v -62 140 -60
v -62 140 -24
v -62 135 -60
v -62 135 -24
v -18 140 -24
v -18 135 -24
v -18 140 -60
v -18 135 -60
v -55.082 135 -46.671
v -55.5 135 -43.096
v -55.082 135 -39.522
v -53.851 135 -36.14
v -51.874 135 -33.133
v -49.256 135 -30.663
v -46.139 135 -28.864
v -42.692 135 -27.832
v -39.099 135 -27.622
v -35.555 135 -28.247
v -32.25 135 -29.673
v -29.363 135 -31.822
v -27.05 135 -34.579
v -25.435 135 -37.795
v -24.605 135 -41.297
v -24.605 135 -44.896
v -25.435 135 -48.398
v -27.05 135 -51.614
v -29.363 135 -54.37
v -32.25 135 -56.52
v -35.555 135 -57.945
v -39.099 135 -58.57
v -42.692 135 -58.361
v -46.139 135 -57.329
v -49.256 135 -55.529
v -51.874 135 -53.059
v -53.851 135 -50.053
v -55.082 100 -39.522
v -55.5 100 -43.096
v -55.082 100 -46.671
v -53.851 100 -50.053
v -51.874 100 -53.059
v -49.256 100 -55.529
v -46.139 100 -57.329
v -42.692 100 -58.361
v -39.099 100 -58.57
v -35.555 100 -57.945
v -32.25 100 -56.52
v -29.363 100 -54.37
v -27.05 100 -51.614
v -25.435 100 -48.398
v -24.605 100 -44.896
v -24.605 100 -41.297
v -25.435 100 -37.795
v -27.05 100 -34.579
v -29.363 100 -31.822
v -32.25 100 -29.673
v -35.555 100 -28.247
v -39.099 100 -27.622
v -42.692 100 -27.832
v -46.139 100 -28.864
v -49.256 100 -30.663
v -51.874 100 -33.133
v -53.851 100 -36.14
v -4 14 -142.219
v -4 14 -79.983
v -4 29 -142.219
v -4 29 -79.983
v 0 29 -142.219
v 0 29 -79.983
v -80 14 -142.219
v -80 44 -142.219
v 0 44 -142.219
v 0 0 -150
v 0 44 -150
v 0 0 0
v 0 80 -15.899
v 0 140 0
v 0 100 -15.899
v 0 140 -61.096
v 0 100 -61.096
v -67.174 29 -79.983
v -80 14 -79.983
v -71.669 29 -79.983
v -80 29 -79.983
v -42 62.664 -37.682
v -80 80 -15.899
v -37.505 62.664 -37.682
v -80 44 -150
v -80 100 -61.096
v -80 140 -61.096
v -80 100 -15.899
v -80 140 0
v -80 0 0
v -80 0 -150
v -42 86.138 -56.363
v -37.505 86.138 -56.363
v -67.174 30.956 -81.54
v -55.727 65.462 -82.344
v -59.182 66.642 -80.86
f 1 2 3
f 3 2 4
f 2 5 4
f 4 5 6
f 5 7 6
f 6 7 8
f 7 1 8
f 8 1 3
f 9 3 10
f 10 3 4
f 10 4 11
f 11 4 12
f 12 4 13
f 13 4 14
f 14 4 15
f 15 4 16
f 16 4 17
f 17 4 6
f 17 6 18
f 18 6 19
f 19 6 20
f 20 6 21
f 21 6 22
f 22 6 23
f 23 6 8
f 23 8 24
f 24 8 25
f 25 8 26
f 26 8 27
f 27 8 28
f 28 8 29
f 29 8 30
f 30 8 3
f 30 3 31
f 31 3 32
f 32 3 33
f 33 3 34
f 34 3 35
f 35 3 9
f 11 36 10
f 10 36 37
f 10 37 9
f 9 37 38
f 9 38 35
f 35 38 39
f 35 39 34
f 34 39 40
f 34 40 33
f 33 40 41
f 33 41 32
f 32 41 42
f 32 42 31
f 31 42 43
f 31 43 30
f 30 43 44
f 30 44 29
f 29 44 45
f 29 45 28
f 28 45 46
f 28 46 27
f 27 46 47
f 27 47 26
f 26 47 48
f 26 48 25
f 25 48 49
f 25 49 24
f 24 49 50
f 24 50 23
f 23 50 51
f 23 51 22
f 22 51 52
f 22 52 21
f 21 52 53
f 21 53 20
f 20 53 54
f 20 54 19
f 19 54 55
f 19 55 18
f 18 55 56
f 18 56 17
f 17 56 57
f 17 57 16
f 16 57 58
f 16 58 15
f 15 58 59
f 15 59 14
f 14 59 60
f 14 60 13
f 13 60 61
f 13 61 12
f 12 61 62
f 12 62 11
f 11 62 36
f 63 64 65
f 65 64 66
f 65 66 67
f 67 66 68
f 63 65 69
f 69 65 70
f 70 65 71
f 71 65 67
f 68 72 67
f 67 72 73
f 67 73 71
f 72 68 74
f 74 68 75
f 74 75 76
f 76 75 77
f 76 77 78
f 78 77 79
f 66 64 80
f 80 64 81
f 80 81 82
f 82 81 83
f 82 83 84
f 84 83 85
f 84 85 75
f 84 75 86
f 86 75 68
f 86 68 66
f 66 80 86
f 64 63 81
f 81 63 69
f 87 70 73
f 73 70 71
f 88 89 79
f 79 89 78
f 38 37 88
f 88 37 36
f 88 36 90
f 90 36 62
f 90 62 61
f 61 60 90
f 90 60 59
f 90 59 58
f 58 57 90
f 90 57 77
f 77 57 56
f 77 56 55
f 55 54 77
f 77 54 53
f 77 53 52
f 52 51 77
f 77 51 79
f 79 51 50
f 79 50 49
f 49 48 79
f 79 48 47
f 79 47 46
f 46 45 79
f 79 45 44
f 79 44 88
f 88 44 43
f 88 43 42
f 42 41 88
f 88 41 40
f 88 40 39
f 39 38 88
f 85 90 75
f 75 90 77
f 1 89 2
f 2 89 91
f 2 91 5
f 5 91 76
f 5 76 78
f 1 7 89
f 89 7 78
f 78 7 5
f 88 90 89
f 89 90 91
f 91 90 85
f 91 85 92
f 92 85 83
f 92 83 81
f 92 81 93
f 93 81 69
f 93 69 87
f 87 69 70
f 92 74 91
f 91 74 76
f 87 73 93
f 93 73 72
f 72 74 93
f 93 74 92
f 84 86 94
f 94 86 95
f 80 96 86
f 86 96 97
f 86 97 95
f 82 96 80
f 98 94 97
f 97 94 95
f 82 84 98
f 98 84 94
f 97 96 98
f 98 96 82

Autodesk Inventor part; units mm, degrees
ref_plane "YZ Plane" through (0, 0, 0) normal (1, 0, 0) x (0, 1, 0)
ref_plane "XZ Plane" through (0, 0, 0) normal (0, 1, 0) x (-1, 0, 0)
ref_plane "XY Plane" through (0, 0, 0) normal (0, 0, 1) x (1, 0, 0)
sketch "Sketch1" plane through (0, 0, 0) normal (0, 1, 0) x (-1, 0, 0)
  line L0 (0, 0) -> (80, 0)
  line L1 (80, 0) -> (80, -150)
  line L2 (80, -150) -> (0, -150)
  line L3 (0, -150) -> (0, 0)
  dimension "d0" = 80
  dimension "d1" = 150
extrude "Extrusion1" add sketch "Sketch1" along normal blind 140
sketch "Sketch2" plane through (0, 0, 0) normal (1, 0, 0) x (0, 0, -1)
  line L0 (150, 140) -> (0, 140) projected
  line L1 (61.0962, 140) -> (61.0962, 100)
  line L2 (61.0962, 100) -> (15.8986, 100)
  line L3 (15.8986, 80) -> (79.9832, 29)
  line L4 (79.9832, 29) -> (79.9832, 14)
  line L5 (79.9832, 14) -> (142.2187, 14)
  line L6 (142.2187, 14) -> (142.2187, 44)
  line L7 (142.2187, 44) -> (150, 44)
  line L8 (150, 0) -> (150, 140) projected
  line L9 (150, 44) -> (150, 140)
  line L10 (150, 140) -> (61.0962, 140)
  line L11 (15.8986, 100) -> (15.8986, 80)
  line L12 (0, 0) -> (150, 0) projected
  point P0 (146.1093, 44)
  point P1 (111.101, 14)
  dimension "d7" = 15
  dimension "d8" = 30
  dimension "d9" = 14
  dimension "d11" = 40
  dimension "d12" = 20
extrude "Extrusion2" cut sketch "Sketch2" against normal blind 140
sketch "Sketch3" plane through (0, 14, -79.9832) normal (0, 1, 0) x (1, 0, 0)
  line L0 (0, -79.9832) -> (0, 70.0168) projected
  line L1 (0, 0) -> (-80, 0) projected
  line L2 (0, 62.5105) -> (-4, 62.5105)
  line L3 (-4, 62.5105) -> (-4, 0)
  line L4 (-4, 0) -> (0, 0)
  line L5 (0, 0) -> (0, 62.5105)
  dimension "d13" = 4
extrude "Extrusion3" add sketch "Sketch3" along normal blind 15
sketch "Sketch4" plane through (0, 140, 0) normal (0, 1, 0) x (1, 0, 0)
  circle A0 centre (-40, 43.0962) radius 15.5
  line L0 (0, 61.0962) -> (-80, 61.0962) projected
  line L1 (0, 0) -> (0, 61.0962) projected
  dimension "d18" = 31
  dimension "d19" = 18
  dimension "d20" = 40
extrude "Extrusion4" cut sketch "Sketch4" against normal blind 50
sketch "Sketch5" plane through (0, 140, 0) normal (0, 1, 0) x (1, 0, 0)
  line L0 (-18, 24) -> (-62, 24)
  line L1 (-62, 24) -> (-62, 60)
  line L2 (-62, 60) -> (-18, 60)
  line L3 (-18, 60) -> (-18, 24)
  line L4 (-80, 61.0962) -> (-80, 0) projected
  line L5 (0, 0) -> (0, 61.0962) projected
  line L6 (-80, 0) -> (0, 0) projected
  line L7 (0, 61.0962) -> (-80, 61.0962) projected
  dimension "d21" = 36
  dimension "d22" = 18
  dimension "d23" = 18
  dimension "d26" = 24
extrude "Extrusion5" cut sketch "Sketch5" against normal blind 5 contours L0 L1 L2 L3
sketch "Sketch6" plane through (-80, 80, -15.8986) normal (0, 0.7824608, -0.6226999) x (1, 0, 0)
  line L0 (76, 81.9014) -> (0, 81.9014) projected
  line L1 (8.3307, 81.9014) -> (38, 27.8393)
  line L2 (38, 27.8393) -> (42.4953, 27.8393)
  line L3 (42.4953, 27.8393) -> (12.826, 81.9014)
  line L4 (12.826, 81.9014) -> (8.3307, 81.9014)
  point P0 (80, 37.376)
  point P1 (12.826, 81.9014)
extrude "Extrusion6" add sketch "Sketch6" along normal blind 30
sketch "Sketch7" plane through (-71.6693, 29, -79.9832) normal (-0.8766596, 0.2995878, 0.3764506) x (0.4811111, 0.5458959, 0.6859518)
  line L0 (-0.005, -0.0058) -> (32.9106, 38.0398)
  line L1 (32.9106, 38.0398) -> (9.9736, 41.528)
  line L2 (2.1627, 30) -> (0, 30) projected
  line L3 (9.9736, 41.528) -> (0, 30)
  line L4 (0, 30) -> (0, 0)
  point P0 (73.5146, -72.4969)
extrude "Extrusion7" cut sketch "Sketch7" against normal blind 15
properties part number "Right"
